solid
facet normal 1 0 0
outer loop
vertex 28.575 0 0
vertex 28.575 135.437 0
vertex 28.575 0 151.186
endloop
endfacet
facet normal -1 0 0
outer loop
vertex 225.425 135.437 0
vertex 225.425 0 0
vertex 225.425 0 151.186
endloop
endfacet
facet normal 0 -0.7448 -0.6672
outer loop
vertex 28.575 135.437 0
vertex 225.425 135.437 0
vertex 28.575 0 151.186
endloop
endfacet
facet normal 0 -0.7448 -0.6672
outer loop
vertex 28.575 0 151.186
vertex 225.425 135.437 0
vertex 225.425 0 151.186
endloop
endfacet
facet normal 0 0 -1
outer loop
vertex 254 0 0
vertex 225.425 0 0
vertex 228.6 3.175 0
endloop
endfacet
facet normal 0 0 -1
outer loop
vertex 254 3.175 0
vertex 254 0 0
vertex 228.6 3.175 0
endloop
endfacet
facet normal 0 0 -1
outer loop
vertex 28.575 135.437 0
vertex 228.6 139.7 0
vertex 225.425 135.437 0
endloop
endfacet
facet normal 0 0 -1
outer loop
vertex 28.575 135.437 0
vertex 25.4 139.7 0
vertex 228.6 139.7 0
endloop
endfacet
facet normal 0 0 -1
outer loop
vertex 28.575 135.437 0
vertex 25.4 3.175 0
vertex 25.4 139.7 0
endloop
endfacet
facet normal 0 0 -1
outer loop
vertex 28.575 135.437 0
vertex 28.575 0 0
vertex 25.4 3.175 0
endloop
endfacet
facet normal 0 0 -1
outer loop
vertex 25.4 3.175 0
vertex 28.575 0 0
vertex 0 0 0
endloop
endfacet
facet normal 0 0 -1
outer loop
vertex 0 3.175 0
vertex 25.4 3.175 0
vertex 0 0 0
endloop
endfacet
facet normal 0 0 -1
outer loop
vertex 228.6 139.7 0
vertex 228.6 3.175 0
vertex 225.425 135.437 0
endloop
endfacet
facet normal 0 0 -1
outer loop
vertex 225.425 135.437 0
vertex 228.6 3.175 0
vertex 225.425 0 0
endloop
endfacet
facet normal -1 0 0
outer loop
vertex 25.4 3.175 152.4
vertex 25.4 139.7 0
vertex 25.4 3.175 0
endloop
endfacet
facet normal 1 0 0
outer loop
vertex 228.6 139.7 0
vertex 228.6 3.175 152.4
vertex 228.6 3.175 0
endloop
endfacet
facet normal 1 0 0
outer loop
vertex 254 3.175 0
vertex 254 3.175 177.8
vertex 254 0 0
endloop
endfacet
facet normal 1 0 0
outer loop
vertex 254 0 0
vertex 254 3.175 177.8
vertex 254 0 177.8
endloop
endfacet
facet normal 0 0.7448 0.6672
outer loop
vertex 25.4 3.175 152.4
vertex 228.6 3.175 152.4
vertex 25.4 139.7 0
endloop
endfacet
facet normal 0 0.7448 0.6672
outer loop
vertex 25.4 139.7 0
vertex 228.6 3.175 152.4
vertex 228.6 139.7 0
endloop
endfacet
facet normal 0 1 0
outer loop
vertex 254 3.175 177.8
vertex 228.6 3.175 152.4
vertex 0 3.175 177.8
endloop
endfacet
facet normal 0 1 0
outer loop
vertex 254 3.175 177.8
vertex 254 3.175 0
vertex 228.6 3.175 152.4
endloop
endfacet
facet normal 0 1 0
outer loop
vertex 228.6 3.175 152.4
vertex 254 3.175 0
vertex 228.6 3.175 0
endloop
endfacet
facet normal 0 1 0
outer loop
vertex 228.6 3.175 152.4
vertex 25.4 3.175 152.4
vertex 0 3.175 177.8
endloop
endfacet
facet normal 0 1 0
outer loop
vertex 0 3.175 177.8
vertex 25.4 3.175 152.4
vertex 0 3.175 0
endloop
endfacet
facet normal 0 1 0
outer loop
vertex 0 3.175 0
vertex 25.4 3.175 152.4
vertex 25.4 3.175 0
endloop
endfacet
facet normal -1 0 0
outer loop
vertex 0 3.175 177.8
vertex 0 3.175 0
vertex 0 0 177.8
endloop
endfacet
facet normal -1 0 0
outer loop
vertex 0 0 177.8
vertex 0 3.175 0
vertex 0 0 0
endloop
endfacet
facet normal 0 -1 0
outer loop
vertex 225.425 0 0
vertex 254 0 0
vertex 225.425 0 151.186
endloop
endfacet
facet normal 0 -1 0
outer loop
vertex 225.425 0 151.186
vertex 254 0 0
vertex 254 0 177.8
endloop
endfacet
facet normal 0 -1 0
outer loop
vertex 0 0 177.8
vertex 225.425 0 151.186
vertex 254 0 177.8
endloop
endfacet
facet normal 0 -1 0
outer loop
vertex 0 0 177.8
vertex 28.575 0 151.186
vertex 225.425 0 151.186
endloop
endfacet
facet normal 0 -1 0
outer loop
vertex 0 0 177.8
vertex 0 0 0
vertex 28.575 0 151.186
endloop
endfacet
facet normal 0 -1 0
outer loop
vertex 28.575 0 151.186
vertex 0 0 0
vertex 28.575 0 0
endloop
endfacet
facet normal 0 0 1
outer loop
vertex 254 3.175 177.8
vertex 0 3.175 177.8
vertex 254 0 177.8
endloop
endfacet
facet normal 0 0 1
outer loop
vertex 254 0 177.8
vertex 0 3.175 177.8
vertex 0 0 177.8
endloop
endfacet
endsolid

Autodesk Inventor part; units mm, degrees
ref_plane "YZ Plane" through (0, 0, 0) normal (1, 0, 0) x (0, 1, 0)
ref_plane "XZ Plane" through (0, 0, 0) normal (0, 1, 0) x (-1, 0, 0)
ref_plane "XY Plane" through (0, 0, 0) normal (0, 0, 1) x (1, 0, 0)
sketch "Sketch1" plane through (0, 0, 0) normal (0, 0, 1) x (1, 0, 0)
  line L0 (0, 0) -> (254, 0)
  line L1 (254, 0) -> (254, 139.7)
  line L2 (254, 139.7) -> (0, 139.7)
  line L3 (0, 139.7) -> (0, 0)
  dimension "d0" = 254
  dimension "d1" = 139.7
extrude "Extrusion1" add sketch "Sketch1" along normal blind 177.8
sketch "Sketch4" plane through (254, 0, 0) normal (1, 0, 0) x (0, 0, -1)
  line L0 (-177.8, 139.7) -> (-177.8, 0) projected
  line L1 (0, 0) -> (-177.8, 0) projected
  line L2 (0, 139.7) -> (-177.8, 139.7)
  line L3 (-177.8, 139.7) -> (-177.8, 3.175)
  line L4 (-177.8, 3.175) -> (-152.4, 3.175)
  line L5 (-152.4, 3.175) -> (0, 139.7)
  dimension "d10" = 3.175
  dimension "d11" = 25.4
extrude "Extrusion3" cut sketch "Sketch4" against normal through all
sketch "Sketch5" plane through (0, 0, 0) normal (0, 0, -1) x (-1, 0, 0)
  line L0 (0, 0) -> (-254, 0) projected
  line L1 (0, 139.7) -> (0, 0) projected
  line L2 (-254, 139.7) -> (-228.6, 139.7)
  line L3 (-228.6, 139.7) -> (-228.6, 3.175)
  line L4 (-228.6, 3.175) -> (-254, 3.175)
  line L5 (-254, 3.175) -> (-254, 139.7)
  line L6 (0, 139.7) -> (-25.4, 139.7)
  line L7 (-25.4, 139.7) -> (-25.4, 3.175)
  line L8 (-25.4, 3.175) -> (0, 3.175)
  line L9 (0, 3.175) -> (0, 139.7)
  dimension "d15" = 3.175
  dimension "d16" = 25.4
extrude "Extrusion4" cut sketch "Sketch5" against normal through all
shell "Shell1" thickness 3.175 removed faces 2 at (160.8667, 48.6833, 0) at (84.6667, 0, 59.2667)
properties part number "Panel_ShooterShroud" material "Polycarbonate, Smoke"
